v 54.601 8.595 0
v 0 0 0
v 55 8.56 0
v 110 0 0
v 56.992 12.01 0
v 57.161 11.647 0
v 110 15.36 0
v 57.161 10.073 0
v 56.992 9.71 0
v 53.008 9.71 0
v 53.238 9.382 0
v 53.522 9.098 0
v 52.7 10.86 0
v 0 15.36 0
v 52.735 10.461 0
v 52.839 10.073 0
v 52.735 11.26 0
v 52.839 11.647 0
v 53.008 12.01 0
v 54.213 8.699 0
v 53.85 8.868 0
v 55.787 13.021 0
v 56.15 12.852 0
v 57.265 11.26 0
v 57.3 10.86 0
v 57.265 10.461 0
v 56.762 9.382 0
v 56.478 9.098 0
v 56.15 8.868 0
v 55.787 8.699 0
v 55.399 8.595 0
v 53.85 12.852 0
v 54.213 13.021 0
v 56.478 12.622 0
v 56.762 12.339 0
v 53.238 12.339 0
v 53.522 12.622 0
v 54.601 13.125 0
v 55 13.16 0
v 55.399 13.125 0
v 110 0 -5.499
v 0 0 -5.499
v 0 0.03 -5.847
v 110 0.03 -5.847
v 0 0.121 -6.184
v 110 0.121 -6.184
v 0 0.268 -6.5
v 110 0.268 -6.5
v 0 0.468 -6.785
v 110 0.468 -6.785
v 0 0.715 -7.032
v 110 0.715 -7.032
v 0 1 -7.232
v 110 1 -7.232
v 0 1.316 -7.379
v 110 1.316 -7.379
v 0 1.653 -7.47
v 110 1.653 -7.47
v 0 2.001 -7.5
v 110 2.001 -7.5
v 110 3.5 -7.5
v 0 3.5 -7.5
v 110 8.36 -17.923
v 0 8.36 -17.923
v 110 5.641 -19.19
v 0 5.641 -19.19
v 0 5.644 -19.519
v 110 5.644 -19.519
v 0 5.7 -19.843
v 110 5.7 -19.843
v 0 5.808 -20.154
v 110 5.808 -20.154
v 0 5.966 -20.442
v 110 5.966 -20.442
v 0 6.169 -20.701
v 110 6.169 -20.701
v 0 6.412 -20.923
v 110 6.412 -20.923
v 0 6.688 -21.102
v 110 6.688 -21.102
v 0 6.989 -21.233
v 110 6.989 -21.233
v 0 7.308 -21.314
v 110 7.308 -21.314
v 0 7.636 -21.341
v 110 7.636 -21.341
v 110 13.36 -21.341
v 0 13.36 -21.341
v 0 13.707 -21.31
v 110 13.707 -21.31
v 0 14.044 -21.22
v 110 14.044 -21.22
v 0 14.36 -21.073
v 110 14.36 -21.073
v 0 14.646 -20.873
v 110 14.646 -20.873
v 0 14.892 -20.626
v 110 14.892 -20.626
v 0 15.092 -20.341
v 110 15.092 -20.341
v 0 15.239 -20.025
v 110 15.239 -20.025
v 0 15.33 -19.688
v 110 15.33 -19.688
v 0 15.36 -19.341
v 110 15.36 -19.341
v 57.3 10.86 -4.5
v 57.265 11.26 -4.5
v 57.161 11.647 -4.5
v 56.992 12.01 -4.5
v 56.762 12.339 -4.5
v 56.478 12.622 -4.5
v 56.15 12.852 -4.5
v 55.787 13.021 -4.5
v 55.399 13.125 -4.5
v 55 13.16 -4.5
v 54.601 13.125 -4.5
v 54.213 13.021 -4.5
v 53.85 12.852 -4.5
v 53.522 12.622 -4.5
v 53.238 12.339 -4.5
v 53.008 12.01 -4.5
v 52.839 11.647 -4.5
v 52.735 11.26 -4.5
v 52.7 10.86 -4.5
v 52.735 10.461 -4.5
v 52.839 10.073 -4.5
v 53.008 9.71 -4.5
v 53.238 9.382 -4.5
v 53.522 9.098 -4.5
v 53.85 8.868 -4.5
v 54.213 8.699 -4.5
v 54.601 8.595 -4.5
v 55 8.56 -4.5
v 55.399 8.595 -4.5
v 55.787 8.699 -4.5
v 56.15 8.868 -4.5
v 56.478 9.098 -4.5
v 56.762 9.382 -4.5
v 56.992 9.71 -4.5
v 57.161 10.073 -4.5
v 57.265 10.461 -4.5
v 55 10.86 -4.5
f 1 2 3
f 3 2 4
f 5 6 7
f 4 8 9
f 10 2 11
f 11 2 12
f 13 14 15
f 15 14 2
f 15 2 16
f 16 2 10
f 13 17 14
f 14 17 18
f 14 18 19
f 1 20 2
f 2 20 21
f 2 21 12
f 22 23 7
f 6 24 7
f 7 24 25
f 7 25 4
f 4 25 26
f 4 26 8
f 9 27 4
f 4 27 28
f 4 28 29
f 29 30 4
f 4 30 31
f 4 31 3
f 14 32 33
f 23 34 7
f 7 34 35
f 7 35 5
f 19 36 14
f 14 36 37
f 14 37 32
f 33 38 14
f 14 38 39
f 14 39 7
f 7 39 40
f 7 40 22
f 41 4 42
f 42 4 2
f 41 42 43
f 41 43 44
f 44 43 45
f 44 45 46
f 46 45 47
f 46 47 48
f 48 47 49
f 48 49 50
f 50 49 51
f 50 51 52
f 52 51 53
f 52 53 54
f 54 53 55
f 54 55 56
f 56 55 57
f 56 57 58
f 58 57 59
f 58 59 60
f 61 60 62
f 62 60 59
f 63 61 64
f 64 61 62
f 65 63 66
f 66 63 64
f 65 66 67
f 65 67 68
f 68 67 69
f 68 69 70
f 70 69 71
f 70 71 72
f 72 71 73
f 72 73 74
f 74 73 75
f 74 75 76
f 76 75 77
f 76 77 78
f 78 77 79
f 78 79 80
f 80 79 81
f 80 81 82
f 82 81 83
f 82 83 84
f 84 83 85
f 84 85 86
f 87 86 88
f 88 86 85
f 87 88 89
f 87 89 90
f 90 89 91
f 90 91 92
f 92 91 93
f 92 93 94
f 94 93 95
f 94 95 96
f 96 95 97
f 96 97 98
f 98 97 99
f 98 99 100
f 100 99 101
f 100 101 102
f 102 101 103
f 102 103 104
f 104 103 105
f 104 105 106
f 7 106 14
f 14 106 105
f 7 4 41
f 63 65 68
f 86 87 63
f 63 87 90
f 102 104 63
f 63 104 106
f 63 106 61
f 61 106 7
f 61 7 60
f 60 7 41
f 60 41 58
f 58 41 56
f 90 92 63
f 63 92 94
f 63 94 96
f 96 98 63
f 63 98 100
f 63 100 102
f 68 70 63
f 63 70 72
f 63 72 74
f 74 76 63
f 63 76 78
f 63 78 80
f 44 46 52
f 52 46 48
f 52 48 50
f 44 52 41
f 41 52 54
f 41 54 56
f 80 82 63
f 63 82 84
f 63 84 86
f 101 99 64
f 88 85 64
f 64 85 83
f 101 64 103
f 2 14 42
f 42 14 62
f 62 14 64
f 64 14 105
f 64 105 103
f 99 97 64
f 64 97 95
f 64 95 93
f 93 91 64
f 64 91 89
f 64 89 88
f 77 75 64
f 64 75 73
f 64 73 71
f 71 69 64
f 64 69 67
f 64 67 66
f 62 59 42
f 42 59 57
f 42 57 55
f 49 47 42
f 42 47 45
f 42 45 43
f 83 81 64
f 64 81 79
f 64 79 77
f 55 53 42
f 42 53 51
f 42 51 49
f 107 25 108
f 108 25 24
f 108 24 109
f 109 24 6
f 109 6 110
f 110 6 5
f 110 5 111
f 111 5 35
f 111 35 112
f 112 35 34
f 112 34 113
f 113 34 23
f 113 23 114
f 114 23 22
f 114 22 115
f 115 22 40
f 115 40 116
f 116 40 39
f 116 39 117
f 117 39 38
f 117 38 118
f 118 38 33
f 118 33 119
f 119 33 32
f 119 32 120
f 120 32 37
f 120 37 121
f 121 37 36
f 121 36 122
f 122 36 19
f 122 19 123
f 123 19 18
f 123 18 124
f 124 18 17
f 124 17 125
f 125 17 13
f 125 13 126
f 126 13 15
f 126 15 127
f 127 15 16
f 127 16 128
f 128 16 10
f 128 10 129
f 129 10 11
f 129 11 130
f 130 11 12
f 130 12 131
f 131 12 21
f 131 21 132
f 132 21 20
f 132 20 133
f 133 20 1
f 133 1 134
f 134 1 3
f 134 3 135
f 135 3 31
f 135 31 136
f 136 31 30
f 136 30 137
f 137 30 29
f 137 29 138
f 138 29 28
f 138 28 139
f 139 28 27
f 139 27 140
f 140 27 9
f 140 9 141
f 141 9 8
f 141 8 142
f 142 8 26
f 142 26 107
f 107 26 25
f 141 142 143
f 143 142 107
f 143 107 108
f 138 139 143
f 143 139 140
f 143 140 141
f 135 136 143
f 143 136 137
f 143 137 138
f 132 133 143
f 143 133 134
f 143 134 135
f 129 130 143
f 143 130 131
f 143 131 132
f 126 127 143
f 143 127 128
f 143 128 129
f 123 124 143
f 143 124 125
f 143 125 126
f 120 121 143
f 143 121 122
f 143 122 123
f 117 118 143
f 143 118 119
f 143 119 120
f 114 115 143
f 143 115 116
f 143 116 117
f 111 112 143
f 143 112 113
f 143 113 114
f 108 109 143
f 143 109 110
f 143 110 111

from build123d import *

# Parameters (mm, degrees)
PROFILEBOSS_EXTRUDE1_DEPTH      = 110
SKETCH3_R                       = 2.3
MOUNTINGHOLESCUT_EXTRUDE3_DEPTH = 4.5


with BuildPart() as part:
    # Sketch1 → ProfileBoss-Extrude1 (new body)
    with BuildSketch(Plane(origin=(0, 0, 0), x_dir=(0, 0, -1), z_dir=(1, 0, 0))):
        with BuildLine():
            Line((0, 0), (5.499461553, 0))
            ThreePointArc((5.499461553, 0), (6.914055855, 0.585944145), (7.5, 2.000538447))
            Line((7.5, 2.000538447), (7.5, 3.5))
            Line((7.5, 3.5), (17.922539551, 8.36011001))
            Line((17.922539551, 8.36011001), (19.190394336, 5.641186649))
            ThreePointArc((19.190394336, 5.641186649), (20.700753359, 6.16912635), (21.340729536, 7.635528477))
            Line((21.340729536, 7.635528477), (21.340729536, 13.36011001))
            ThreePointArc((21.340729536, 13.36011001), (20.754943098, 14.774323572), (19.340729536, 15.36011001))
            Line((19.340729536, 15.36011001), (0, 15.36011001))
            Line((0, 15.36011001), (0, 0))
        make_face()
    extrude(amount=PROFILEBOSS_EXTRUDE1_DEPTH)

    # Sketch3 → MountingHolesCut-Extrude3 (cut)
    with BuildSketch(Plane.XY):
        with Locations((55, 10.86011001)):
            Circle(SKETCH3_R)
    extrude(amount=-MOUNTINGHOLESCUT_EXTRUDE3_DEPTH, mode=Mode.SUBTRACT)


solid = part.part
